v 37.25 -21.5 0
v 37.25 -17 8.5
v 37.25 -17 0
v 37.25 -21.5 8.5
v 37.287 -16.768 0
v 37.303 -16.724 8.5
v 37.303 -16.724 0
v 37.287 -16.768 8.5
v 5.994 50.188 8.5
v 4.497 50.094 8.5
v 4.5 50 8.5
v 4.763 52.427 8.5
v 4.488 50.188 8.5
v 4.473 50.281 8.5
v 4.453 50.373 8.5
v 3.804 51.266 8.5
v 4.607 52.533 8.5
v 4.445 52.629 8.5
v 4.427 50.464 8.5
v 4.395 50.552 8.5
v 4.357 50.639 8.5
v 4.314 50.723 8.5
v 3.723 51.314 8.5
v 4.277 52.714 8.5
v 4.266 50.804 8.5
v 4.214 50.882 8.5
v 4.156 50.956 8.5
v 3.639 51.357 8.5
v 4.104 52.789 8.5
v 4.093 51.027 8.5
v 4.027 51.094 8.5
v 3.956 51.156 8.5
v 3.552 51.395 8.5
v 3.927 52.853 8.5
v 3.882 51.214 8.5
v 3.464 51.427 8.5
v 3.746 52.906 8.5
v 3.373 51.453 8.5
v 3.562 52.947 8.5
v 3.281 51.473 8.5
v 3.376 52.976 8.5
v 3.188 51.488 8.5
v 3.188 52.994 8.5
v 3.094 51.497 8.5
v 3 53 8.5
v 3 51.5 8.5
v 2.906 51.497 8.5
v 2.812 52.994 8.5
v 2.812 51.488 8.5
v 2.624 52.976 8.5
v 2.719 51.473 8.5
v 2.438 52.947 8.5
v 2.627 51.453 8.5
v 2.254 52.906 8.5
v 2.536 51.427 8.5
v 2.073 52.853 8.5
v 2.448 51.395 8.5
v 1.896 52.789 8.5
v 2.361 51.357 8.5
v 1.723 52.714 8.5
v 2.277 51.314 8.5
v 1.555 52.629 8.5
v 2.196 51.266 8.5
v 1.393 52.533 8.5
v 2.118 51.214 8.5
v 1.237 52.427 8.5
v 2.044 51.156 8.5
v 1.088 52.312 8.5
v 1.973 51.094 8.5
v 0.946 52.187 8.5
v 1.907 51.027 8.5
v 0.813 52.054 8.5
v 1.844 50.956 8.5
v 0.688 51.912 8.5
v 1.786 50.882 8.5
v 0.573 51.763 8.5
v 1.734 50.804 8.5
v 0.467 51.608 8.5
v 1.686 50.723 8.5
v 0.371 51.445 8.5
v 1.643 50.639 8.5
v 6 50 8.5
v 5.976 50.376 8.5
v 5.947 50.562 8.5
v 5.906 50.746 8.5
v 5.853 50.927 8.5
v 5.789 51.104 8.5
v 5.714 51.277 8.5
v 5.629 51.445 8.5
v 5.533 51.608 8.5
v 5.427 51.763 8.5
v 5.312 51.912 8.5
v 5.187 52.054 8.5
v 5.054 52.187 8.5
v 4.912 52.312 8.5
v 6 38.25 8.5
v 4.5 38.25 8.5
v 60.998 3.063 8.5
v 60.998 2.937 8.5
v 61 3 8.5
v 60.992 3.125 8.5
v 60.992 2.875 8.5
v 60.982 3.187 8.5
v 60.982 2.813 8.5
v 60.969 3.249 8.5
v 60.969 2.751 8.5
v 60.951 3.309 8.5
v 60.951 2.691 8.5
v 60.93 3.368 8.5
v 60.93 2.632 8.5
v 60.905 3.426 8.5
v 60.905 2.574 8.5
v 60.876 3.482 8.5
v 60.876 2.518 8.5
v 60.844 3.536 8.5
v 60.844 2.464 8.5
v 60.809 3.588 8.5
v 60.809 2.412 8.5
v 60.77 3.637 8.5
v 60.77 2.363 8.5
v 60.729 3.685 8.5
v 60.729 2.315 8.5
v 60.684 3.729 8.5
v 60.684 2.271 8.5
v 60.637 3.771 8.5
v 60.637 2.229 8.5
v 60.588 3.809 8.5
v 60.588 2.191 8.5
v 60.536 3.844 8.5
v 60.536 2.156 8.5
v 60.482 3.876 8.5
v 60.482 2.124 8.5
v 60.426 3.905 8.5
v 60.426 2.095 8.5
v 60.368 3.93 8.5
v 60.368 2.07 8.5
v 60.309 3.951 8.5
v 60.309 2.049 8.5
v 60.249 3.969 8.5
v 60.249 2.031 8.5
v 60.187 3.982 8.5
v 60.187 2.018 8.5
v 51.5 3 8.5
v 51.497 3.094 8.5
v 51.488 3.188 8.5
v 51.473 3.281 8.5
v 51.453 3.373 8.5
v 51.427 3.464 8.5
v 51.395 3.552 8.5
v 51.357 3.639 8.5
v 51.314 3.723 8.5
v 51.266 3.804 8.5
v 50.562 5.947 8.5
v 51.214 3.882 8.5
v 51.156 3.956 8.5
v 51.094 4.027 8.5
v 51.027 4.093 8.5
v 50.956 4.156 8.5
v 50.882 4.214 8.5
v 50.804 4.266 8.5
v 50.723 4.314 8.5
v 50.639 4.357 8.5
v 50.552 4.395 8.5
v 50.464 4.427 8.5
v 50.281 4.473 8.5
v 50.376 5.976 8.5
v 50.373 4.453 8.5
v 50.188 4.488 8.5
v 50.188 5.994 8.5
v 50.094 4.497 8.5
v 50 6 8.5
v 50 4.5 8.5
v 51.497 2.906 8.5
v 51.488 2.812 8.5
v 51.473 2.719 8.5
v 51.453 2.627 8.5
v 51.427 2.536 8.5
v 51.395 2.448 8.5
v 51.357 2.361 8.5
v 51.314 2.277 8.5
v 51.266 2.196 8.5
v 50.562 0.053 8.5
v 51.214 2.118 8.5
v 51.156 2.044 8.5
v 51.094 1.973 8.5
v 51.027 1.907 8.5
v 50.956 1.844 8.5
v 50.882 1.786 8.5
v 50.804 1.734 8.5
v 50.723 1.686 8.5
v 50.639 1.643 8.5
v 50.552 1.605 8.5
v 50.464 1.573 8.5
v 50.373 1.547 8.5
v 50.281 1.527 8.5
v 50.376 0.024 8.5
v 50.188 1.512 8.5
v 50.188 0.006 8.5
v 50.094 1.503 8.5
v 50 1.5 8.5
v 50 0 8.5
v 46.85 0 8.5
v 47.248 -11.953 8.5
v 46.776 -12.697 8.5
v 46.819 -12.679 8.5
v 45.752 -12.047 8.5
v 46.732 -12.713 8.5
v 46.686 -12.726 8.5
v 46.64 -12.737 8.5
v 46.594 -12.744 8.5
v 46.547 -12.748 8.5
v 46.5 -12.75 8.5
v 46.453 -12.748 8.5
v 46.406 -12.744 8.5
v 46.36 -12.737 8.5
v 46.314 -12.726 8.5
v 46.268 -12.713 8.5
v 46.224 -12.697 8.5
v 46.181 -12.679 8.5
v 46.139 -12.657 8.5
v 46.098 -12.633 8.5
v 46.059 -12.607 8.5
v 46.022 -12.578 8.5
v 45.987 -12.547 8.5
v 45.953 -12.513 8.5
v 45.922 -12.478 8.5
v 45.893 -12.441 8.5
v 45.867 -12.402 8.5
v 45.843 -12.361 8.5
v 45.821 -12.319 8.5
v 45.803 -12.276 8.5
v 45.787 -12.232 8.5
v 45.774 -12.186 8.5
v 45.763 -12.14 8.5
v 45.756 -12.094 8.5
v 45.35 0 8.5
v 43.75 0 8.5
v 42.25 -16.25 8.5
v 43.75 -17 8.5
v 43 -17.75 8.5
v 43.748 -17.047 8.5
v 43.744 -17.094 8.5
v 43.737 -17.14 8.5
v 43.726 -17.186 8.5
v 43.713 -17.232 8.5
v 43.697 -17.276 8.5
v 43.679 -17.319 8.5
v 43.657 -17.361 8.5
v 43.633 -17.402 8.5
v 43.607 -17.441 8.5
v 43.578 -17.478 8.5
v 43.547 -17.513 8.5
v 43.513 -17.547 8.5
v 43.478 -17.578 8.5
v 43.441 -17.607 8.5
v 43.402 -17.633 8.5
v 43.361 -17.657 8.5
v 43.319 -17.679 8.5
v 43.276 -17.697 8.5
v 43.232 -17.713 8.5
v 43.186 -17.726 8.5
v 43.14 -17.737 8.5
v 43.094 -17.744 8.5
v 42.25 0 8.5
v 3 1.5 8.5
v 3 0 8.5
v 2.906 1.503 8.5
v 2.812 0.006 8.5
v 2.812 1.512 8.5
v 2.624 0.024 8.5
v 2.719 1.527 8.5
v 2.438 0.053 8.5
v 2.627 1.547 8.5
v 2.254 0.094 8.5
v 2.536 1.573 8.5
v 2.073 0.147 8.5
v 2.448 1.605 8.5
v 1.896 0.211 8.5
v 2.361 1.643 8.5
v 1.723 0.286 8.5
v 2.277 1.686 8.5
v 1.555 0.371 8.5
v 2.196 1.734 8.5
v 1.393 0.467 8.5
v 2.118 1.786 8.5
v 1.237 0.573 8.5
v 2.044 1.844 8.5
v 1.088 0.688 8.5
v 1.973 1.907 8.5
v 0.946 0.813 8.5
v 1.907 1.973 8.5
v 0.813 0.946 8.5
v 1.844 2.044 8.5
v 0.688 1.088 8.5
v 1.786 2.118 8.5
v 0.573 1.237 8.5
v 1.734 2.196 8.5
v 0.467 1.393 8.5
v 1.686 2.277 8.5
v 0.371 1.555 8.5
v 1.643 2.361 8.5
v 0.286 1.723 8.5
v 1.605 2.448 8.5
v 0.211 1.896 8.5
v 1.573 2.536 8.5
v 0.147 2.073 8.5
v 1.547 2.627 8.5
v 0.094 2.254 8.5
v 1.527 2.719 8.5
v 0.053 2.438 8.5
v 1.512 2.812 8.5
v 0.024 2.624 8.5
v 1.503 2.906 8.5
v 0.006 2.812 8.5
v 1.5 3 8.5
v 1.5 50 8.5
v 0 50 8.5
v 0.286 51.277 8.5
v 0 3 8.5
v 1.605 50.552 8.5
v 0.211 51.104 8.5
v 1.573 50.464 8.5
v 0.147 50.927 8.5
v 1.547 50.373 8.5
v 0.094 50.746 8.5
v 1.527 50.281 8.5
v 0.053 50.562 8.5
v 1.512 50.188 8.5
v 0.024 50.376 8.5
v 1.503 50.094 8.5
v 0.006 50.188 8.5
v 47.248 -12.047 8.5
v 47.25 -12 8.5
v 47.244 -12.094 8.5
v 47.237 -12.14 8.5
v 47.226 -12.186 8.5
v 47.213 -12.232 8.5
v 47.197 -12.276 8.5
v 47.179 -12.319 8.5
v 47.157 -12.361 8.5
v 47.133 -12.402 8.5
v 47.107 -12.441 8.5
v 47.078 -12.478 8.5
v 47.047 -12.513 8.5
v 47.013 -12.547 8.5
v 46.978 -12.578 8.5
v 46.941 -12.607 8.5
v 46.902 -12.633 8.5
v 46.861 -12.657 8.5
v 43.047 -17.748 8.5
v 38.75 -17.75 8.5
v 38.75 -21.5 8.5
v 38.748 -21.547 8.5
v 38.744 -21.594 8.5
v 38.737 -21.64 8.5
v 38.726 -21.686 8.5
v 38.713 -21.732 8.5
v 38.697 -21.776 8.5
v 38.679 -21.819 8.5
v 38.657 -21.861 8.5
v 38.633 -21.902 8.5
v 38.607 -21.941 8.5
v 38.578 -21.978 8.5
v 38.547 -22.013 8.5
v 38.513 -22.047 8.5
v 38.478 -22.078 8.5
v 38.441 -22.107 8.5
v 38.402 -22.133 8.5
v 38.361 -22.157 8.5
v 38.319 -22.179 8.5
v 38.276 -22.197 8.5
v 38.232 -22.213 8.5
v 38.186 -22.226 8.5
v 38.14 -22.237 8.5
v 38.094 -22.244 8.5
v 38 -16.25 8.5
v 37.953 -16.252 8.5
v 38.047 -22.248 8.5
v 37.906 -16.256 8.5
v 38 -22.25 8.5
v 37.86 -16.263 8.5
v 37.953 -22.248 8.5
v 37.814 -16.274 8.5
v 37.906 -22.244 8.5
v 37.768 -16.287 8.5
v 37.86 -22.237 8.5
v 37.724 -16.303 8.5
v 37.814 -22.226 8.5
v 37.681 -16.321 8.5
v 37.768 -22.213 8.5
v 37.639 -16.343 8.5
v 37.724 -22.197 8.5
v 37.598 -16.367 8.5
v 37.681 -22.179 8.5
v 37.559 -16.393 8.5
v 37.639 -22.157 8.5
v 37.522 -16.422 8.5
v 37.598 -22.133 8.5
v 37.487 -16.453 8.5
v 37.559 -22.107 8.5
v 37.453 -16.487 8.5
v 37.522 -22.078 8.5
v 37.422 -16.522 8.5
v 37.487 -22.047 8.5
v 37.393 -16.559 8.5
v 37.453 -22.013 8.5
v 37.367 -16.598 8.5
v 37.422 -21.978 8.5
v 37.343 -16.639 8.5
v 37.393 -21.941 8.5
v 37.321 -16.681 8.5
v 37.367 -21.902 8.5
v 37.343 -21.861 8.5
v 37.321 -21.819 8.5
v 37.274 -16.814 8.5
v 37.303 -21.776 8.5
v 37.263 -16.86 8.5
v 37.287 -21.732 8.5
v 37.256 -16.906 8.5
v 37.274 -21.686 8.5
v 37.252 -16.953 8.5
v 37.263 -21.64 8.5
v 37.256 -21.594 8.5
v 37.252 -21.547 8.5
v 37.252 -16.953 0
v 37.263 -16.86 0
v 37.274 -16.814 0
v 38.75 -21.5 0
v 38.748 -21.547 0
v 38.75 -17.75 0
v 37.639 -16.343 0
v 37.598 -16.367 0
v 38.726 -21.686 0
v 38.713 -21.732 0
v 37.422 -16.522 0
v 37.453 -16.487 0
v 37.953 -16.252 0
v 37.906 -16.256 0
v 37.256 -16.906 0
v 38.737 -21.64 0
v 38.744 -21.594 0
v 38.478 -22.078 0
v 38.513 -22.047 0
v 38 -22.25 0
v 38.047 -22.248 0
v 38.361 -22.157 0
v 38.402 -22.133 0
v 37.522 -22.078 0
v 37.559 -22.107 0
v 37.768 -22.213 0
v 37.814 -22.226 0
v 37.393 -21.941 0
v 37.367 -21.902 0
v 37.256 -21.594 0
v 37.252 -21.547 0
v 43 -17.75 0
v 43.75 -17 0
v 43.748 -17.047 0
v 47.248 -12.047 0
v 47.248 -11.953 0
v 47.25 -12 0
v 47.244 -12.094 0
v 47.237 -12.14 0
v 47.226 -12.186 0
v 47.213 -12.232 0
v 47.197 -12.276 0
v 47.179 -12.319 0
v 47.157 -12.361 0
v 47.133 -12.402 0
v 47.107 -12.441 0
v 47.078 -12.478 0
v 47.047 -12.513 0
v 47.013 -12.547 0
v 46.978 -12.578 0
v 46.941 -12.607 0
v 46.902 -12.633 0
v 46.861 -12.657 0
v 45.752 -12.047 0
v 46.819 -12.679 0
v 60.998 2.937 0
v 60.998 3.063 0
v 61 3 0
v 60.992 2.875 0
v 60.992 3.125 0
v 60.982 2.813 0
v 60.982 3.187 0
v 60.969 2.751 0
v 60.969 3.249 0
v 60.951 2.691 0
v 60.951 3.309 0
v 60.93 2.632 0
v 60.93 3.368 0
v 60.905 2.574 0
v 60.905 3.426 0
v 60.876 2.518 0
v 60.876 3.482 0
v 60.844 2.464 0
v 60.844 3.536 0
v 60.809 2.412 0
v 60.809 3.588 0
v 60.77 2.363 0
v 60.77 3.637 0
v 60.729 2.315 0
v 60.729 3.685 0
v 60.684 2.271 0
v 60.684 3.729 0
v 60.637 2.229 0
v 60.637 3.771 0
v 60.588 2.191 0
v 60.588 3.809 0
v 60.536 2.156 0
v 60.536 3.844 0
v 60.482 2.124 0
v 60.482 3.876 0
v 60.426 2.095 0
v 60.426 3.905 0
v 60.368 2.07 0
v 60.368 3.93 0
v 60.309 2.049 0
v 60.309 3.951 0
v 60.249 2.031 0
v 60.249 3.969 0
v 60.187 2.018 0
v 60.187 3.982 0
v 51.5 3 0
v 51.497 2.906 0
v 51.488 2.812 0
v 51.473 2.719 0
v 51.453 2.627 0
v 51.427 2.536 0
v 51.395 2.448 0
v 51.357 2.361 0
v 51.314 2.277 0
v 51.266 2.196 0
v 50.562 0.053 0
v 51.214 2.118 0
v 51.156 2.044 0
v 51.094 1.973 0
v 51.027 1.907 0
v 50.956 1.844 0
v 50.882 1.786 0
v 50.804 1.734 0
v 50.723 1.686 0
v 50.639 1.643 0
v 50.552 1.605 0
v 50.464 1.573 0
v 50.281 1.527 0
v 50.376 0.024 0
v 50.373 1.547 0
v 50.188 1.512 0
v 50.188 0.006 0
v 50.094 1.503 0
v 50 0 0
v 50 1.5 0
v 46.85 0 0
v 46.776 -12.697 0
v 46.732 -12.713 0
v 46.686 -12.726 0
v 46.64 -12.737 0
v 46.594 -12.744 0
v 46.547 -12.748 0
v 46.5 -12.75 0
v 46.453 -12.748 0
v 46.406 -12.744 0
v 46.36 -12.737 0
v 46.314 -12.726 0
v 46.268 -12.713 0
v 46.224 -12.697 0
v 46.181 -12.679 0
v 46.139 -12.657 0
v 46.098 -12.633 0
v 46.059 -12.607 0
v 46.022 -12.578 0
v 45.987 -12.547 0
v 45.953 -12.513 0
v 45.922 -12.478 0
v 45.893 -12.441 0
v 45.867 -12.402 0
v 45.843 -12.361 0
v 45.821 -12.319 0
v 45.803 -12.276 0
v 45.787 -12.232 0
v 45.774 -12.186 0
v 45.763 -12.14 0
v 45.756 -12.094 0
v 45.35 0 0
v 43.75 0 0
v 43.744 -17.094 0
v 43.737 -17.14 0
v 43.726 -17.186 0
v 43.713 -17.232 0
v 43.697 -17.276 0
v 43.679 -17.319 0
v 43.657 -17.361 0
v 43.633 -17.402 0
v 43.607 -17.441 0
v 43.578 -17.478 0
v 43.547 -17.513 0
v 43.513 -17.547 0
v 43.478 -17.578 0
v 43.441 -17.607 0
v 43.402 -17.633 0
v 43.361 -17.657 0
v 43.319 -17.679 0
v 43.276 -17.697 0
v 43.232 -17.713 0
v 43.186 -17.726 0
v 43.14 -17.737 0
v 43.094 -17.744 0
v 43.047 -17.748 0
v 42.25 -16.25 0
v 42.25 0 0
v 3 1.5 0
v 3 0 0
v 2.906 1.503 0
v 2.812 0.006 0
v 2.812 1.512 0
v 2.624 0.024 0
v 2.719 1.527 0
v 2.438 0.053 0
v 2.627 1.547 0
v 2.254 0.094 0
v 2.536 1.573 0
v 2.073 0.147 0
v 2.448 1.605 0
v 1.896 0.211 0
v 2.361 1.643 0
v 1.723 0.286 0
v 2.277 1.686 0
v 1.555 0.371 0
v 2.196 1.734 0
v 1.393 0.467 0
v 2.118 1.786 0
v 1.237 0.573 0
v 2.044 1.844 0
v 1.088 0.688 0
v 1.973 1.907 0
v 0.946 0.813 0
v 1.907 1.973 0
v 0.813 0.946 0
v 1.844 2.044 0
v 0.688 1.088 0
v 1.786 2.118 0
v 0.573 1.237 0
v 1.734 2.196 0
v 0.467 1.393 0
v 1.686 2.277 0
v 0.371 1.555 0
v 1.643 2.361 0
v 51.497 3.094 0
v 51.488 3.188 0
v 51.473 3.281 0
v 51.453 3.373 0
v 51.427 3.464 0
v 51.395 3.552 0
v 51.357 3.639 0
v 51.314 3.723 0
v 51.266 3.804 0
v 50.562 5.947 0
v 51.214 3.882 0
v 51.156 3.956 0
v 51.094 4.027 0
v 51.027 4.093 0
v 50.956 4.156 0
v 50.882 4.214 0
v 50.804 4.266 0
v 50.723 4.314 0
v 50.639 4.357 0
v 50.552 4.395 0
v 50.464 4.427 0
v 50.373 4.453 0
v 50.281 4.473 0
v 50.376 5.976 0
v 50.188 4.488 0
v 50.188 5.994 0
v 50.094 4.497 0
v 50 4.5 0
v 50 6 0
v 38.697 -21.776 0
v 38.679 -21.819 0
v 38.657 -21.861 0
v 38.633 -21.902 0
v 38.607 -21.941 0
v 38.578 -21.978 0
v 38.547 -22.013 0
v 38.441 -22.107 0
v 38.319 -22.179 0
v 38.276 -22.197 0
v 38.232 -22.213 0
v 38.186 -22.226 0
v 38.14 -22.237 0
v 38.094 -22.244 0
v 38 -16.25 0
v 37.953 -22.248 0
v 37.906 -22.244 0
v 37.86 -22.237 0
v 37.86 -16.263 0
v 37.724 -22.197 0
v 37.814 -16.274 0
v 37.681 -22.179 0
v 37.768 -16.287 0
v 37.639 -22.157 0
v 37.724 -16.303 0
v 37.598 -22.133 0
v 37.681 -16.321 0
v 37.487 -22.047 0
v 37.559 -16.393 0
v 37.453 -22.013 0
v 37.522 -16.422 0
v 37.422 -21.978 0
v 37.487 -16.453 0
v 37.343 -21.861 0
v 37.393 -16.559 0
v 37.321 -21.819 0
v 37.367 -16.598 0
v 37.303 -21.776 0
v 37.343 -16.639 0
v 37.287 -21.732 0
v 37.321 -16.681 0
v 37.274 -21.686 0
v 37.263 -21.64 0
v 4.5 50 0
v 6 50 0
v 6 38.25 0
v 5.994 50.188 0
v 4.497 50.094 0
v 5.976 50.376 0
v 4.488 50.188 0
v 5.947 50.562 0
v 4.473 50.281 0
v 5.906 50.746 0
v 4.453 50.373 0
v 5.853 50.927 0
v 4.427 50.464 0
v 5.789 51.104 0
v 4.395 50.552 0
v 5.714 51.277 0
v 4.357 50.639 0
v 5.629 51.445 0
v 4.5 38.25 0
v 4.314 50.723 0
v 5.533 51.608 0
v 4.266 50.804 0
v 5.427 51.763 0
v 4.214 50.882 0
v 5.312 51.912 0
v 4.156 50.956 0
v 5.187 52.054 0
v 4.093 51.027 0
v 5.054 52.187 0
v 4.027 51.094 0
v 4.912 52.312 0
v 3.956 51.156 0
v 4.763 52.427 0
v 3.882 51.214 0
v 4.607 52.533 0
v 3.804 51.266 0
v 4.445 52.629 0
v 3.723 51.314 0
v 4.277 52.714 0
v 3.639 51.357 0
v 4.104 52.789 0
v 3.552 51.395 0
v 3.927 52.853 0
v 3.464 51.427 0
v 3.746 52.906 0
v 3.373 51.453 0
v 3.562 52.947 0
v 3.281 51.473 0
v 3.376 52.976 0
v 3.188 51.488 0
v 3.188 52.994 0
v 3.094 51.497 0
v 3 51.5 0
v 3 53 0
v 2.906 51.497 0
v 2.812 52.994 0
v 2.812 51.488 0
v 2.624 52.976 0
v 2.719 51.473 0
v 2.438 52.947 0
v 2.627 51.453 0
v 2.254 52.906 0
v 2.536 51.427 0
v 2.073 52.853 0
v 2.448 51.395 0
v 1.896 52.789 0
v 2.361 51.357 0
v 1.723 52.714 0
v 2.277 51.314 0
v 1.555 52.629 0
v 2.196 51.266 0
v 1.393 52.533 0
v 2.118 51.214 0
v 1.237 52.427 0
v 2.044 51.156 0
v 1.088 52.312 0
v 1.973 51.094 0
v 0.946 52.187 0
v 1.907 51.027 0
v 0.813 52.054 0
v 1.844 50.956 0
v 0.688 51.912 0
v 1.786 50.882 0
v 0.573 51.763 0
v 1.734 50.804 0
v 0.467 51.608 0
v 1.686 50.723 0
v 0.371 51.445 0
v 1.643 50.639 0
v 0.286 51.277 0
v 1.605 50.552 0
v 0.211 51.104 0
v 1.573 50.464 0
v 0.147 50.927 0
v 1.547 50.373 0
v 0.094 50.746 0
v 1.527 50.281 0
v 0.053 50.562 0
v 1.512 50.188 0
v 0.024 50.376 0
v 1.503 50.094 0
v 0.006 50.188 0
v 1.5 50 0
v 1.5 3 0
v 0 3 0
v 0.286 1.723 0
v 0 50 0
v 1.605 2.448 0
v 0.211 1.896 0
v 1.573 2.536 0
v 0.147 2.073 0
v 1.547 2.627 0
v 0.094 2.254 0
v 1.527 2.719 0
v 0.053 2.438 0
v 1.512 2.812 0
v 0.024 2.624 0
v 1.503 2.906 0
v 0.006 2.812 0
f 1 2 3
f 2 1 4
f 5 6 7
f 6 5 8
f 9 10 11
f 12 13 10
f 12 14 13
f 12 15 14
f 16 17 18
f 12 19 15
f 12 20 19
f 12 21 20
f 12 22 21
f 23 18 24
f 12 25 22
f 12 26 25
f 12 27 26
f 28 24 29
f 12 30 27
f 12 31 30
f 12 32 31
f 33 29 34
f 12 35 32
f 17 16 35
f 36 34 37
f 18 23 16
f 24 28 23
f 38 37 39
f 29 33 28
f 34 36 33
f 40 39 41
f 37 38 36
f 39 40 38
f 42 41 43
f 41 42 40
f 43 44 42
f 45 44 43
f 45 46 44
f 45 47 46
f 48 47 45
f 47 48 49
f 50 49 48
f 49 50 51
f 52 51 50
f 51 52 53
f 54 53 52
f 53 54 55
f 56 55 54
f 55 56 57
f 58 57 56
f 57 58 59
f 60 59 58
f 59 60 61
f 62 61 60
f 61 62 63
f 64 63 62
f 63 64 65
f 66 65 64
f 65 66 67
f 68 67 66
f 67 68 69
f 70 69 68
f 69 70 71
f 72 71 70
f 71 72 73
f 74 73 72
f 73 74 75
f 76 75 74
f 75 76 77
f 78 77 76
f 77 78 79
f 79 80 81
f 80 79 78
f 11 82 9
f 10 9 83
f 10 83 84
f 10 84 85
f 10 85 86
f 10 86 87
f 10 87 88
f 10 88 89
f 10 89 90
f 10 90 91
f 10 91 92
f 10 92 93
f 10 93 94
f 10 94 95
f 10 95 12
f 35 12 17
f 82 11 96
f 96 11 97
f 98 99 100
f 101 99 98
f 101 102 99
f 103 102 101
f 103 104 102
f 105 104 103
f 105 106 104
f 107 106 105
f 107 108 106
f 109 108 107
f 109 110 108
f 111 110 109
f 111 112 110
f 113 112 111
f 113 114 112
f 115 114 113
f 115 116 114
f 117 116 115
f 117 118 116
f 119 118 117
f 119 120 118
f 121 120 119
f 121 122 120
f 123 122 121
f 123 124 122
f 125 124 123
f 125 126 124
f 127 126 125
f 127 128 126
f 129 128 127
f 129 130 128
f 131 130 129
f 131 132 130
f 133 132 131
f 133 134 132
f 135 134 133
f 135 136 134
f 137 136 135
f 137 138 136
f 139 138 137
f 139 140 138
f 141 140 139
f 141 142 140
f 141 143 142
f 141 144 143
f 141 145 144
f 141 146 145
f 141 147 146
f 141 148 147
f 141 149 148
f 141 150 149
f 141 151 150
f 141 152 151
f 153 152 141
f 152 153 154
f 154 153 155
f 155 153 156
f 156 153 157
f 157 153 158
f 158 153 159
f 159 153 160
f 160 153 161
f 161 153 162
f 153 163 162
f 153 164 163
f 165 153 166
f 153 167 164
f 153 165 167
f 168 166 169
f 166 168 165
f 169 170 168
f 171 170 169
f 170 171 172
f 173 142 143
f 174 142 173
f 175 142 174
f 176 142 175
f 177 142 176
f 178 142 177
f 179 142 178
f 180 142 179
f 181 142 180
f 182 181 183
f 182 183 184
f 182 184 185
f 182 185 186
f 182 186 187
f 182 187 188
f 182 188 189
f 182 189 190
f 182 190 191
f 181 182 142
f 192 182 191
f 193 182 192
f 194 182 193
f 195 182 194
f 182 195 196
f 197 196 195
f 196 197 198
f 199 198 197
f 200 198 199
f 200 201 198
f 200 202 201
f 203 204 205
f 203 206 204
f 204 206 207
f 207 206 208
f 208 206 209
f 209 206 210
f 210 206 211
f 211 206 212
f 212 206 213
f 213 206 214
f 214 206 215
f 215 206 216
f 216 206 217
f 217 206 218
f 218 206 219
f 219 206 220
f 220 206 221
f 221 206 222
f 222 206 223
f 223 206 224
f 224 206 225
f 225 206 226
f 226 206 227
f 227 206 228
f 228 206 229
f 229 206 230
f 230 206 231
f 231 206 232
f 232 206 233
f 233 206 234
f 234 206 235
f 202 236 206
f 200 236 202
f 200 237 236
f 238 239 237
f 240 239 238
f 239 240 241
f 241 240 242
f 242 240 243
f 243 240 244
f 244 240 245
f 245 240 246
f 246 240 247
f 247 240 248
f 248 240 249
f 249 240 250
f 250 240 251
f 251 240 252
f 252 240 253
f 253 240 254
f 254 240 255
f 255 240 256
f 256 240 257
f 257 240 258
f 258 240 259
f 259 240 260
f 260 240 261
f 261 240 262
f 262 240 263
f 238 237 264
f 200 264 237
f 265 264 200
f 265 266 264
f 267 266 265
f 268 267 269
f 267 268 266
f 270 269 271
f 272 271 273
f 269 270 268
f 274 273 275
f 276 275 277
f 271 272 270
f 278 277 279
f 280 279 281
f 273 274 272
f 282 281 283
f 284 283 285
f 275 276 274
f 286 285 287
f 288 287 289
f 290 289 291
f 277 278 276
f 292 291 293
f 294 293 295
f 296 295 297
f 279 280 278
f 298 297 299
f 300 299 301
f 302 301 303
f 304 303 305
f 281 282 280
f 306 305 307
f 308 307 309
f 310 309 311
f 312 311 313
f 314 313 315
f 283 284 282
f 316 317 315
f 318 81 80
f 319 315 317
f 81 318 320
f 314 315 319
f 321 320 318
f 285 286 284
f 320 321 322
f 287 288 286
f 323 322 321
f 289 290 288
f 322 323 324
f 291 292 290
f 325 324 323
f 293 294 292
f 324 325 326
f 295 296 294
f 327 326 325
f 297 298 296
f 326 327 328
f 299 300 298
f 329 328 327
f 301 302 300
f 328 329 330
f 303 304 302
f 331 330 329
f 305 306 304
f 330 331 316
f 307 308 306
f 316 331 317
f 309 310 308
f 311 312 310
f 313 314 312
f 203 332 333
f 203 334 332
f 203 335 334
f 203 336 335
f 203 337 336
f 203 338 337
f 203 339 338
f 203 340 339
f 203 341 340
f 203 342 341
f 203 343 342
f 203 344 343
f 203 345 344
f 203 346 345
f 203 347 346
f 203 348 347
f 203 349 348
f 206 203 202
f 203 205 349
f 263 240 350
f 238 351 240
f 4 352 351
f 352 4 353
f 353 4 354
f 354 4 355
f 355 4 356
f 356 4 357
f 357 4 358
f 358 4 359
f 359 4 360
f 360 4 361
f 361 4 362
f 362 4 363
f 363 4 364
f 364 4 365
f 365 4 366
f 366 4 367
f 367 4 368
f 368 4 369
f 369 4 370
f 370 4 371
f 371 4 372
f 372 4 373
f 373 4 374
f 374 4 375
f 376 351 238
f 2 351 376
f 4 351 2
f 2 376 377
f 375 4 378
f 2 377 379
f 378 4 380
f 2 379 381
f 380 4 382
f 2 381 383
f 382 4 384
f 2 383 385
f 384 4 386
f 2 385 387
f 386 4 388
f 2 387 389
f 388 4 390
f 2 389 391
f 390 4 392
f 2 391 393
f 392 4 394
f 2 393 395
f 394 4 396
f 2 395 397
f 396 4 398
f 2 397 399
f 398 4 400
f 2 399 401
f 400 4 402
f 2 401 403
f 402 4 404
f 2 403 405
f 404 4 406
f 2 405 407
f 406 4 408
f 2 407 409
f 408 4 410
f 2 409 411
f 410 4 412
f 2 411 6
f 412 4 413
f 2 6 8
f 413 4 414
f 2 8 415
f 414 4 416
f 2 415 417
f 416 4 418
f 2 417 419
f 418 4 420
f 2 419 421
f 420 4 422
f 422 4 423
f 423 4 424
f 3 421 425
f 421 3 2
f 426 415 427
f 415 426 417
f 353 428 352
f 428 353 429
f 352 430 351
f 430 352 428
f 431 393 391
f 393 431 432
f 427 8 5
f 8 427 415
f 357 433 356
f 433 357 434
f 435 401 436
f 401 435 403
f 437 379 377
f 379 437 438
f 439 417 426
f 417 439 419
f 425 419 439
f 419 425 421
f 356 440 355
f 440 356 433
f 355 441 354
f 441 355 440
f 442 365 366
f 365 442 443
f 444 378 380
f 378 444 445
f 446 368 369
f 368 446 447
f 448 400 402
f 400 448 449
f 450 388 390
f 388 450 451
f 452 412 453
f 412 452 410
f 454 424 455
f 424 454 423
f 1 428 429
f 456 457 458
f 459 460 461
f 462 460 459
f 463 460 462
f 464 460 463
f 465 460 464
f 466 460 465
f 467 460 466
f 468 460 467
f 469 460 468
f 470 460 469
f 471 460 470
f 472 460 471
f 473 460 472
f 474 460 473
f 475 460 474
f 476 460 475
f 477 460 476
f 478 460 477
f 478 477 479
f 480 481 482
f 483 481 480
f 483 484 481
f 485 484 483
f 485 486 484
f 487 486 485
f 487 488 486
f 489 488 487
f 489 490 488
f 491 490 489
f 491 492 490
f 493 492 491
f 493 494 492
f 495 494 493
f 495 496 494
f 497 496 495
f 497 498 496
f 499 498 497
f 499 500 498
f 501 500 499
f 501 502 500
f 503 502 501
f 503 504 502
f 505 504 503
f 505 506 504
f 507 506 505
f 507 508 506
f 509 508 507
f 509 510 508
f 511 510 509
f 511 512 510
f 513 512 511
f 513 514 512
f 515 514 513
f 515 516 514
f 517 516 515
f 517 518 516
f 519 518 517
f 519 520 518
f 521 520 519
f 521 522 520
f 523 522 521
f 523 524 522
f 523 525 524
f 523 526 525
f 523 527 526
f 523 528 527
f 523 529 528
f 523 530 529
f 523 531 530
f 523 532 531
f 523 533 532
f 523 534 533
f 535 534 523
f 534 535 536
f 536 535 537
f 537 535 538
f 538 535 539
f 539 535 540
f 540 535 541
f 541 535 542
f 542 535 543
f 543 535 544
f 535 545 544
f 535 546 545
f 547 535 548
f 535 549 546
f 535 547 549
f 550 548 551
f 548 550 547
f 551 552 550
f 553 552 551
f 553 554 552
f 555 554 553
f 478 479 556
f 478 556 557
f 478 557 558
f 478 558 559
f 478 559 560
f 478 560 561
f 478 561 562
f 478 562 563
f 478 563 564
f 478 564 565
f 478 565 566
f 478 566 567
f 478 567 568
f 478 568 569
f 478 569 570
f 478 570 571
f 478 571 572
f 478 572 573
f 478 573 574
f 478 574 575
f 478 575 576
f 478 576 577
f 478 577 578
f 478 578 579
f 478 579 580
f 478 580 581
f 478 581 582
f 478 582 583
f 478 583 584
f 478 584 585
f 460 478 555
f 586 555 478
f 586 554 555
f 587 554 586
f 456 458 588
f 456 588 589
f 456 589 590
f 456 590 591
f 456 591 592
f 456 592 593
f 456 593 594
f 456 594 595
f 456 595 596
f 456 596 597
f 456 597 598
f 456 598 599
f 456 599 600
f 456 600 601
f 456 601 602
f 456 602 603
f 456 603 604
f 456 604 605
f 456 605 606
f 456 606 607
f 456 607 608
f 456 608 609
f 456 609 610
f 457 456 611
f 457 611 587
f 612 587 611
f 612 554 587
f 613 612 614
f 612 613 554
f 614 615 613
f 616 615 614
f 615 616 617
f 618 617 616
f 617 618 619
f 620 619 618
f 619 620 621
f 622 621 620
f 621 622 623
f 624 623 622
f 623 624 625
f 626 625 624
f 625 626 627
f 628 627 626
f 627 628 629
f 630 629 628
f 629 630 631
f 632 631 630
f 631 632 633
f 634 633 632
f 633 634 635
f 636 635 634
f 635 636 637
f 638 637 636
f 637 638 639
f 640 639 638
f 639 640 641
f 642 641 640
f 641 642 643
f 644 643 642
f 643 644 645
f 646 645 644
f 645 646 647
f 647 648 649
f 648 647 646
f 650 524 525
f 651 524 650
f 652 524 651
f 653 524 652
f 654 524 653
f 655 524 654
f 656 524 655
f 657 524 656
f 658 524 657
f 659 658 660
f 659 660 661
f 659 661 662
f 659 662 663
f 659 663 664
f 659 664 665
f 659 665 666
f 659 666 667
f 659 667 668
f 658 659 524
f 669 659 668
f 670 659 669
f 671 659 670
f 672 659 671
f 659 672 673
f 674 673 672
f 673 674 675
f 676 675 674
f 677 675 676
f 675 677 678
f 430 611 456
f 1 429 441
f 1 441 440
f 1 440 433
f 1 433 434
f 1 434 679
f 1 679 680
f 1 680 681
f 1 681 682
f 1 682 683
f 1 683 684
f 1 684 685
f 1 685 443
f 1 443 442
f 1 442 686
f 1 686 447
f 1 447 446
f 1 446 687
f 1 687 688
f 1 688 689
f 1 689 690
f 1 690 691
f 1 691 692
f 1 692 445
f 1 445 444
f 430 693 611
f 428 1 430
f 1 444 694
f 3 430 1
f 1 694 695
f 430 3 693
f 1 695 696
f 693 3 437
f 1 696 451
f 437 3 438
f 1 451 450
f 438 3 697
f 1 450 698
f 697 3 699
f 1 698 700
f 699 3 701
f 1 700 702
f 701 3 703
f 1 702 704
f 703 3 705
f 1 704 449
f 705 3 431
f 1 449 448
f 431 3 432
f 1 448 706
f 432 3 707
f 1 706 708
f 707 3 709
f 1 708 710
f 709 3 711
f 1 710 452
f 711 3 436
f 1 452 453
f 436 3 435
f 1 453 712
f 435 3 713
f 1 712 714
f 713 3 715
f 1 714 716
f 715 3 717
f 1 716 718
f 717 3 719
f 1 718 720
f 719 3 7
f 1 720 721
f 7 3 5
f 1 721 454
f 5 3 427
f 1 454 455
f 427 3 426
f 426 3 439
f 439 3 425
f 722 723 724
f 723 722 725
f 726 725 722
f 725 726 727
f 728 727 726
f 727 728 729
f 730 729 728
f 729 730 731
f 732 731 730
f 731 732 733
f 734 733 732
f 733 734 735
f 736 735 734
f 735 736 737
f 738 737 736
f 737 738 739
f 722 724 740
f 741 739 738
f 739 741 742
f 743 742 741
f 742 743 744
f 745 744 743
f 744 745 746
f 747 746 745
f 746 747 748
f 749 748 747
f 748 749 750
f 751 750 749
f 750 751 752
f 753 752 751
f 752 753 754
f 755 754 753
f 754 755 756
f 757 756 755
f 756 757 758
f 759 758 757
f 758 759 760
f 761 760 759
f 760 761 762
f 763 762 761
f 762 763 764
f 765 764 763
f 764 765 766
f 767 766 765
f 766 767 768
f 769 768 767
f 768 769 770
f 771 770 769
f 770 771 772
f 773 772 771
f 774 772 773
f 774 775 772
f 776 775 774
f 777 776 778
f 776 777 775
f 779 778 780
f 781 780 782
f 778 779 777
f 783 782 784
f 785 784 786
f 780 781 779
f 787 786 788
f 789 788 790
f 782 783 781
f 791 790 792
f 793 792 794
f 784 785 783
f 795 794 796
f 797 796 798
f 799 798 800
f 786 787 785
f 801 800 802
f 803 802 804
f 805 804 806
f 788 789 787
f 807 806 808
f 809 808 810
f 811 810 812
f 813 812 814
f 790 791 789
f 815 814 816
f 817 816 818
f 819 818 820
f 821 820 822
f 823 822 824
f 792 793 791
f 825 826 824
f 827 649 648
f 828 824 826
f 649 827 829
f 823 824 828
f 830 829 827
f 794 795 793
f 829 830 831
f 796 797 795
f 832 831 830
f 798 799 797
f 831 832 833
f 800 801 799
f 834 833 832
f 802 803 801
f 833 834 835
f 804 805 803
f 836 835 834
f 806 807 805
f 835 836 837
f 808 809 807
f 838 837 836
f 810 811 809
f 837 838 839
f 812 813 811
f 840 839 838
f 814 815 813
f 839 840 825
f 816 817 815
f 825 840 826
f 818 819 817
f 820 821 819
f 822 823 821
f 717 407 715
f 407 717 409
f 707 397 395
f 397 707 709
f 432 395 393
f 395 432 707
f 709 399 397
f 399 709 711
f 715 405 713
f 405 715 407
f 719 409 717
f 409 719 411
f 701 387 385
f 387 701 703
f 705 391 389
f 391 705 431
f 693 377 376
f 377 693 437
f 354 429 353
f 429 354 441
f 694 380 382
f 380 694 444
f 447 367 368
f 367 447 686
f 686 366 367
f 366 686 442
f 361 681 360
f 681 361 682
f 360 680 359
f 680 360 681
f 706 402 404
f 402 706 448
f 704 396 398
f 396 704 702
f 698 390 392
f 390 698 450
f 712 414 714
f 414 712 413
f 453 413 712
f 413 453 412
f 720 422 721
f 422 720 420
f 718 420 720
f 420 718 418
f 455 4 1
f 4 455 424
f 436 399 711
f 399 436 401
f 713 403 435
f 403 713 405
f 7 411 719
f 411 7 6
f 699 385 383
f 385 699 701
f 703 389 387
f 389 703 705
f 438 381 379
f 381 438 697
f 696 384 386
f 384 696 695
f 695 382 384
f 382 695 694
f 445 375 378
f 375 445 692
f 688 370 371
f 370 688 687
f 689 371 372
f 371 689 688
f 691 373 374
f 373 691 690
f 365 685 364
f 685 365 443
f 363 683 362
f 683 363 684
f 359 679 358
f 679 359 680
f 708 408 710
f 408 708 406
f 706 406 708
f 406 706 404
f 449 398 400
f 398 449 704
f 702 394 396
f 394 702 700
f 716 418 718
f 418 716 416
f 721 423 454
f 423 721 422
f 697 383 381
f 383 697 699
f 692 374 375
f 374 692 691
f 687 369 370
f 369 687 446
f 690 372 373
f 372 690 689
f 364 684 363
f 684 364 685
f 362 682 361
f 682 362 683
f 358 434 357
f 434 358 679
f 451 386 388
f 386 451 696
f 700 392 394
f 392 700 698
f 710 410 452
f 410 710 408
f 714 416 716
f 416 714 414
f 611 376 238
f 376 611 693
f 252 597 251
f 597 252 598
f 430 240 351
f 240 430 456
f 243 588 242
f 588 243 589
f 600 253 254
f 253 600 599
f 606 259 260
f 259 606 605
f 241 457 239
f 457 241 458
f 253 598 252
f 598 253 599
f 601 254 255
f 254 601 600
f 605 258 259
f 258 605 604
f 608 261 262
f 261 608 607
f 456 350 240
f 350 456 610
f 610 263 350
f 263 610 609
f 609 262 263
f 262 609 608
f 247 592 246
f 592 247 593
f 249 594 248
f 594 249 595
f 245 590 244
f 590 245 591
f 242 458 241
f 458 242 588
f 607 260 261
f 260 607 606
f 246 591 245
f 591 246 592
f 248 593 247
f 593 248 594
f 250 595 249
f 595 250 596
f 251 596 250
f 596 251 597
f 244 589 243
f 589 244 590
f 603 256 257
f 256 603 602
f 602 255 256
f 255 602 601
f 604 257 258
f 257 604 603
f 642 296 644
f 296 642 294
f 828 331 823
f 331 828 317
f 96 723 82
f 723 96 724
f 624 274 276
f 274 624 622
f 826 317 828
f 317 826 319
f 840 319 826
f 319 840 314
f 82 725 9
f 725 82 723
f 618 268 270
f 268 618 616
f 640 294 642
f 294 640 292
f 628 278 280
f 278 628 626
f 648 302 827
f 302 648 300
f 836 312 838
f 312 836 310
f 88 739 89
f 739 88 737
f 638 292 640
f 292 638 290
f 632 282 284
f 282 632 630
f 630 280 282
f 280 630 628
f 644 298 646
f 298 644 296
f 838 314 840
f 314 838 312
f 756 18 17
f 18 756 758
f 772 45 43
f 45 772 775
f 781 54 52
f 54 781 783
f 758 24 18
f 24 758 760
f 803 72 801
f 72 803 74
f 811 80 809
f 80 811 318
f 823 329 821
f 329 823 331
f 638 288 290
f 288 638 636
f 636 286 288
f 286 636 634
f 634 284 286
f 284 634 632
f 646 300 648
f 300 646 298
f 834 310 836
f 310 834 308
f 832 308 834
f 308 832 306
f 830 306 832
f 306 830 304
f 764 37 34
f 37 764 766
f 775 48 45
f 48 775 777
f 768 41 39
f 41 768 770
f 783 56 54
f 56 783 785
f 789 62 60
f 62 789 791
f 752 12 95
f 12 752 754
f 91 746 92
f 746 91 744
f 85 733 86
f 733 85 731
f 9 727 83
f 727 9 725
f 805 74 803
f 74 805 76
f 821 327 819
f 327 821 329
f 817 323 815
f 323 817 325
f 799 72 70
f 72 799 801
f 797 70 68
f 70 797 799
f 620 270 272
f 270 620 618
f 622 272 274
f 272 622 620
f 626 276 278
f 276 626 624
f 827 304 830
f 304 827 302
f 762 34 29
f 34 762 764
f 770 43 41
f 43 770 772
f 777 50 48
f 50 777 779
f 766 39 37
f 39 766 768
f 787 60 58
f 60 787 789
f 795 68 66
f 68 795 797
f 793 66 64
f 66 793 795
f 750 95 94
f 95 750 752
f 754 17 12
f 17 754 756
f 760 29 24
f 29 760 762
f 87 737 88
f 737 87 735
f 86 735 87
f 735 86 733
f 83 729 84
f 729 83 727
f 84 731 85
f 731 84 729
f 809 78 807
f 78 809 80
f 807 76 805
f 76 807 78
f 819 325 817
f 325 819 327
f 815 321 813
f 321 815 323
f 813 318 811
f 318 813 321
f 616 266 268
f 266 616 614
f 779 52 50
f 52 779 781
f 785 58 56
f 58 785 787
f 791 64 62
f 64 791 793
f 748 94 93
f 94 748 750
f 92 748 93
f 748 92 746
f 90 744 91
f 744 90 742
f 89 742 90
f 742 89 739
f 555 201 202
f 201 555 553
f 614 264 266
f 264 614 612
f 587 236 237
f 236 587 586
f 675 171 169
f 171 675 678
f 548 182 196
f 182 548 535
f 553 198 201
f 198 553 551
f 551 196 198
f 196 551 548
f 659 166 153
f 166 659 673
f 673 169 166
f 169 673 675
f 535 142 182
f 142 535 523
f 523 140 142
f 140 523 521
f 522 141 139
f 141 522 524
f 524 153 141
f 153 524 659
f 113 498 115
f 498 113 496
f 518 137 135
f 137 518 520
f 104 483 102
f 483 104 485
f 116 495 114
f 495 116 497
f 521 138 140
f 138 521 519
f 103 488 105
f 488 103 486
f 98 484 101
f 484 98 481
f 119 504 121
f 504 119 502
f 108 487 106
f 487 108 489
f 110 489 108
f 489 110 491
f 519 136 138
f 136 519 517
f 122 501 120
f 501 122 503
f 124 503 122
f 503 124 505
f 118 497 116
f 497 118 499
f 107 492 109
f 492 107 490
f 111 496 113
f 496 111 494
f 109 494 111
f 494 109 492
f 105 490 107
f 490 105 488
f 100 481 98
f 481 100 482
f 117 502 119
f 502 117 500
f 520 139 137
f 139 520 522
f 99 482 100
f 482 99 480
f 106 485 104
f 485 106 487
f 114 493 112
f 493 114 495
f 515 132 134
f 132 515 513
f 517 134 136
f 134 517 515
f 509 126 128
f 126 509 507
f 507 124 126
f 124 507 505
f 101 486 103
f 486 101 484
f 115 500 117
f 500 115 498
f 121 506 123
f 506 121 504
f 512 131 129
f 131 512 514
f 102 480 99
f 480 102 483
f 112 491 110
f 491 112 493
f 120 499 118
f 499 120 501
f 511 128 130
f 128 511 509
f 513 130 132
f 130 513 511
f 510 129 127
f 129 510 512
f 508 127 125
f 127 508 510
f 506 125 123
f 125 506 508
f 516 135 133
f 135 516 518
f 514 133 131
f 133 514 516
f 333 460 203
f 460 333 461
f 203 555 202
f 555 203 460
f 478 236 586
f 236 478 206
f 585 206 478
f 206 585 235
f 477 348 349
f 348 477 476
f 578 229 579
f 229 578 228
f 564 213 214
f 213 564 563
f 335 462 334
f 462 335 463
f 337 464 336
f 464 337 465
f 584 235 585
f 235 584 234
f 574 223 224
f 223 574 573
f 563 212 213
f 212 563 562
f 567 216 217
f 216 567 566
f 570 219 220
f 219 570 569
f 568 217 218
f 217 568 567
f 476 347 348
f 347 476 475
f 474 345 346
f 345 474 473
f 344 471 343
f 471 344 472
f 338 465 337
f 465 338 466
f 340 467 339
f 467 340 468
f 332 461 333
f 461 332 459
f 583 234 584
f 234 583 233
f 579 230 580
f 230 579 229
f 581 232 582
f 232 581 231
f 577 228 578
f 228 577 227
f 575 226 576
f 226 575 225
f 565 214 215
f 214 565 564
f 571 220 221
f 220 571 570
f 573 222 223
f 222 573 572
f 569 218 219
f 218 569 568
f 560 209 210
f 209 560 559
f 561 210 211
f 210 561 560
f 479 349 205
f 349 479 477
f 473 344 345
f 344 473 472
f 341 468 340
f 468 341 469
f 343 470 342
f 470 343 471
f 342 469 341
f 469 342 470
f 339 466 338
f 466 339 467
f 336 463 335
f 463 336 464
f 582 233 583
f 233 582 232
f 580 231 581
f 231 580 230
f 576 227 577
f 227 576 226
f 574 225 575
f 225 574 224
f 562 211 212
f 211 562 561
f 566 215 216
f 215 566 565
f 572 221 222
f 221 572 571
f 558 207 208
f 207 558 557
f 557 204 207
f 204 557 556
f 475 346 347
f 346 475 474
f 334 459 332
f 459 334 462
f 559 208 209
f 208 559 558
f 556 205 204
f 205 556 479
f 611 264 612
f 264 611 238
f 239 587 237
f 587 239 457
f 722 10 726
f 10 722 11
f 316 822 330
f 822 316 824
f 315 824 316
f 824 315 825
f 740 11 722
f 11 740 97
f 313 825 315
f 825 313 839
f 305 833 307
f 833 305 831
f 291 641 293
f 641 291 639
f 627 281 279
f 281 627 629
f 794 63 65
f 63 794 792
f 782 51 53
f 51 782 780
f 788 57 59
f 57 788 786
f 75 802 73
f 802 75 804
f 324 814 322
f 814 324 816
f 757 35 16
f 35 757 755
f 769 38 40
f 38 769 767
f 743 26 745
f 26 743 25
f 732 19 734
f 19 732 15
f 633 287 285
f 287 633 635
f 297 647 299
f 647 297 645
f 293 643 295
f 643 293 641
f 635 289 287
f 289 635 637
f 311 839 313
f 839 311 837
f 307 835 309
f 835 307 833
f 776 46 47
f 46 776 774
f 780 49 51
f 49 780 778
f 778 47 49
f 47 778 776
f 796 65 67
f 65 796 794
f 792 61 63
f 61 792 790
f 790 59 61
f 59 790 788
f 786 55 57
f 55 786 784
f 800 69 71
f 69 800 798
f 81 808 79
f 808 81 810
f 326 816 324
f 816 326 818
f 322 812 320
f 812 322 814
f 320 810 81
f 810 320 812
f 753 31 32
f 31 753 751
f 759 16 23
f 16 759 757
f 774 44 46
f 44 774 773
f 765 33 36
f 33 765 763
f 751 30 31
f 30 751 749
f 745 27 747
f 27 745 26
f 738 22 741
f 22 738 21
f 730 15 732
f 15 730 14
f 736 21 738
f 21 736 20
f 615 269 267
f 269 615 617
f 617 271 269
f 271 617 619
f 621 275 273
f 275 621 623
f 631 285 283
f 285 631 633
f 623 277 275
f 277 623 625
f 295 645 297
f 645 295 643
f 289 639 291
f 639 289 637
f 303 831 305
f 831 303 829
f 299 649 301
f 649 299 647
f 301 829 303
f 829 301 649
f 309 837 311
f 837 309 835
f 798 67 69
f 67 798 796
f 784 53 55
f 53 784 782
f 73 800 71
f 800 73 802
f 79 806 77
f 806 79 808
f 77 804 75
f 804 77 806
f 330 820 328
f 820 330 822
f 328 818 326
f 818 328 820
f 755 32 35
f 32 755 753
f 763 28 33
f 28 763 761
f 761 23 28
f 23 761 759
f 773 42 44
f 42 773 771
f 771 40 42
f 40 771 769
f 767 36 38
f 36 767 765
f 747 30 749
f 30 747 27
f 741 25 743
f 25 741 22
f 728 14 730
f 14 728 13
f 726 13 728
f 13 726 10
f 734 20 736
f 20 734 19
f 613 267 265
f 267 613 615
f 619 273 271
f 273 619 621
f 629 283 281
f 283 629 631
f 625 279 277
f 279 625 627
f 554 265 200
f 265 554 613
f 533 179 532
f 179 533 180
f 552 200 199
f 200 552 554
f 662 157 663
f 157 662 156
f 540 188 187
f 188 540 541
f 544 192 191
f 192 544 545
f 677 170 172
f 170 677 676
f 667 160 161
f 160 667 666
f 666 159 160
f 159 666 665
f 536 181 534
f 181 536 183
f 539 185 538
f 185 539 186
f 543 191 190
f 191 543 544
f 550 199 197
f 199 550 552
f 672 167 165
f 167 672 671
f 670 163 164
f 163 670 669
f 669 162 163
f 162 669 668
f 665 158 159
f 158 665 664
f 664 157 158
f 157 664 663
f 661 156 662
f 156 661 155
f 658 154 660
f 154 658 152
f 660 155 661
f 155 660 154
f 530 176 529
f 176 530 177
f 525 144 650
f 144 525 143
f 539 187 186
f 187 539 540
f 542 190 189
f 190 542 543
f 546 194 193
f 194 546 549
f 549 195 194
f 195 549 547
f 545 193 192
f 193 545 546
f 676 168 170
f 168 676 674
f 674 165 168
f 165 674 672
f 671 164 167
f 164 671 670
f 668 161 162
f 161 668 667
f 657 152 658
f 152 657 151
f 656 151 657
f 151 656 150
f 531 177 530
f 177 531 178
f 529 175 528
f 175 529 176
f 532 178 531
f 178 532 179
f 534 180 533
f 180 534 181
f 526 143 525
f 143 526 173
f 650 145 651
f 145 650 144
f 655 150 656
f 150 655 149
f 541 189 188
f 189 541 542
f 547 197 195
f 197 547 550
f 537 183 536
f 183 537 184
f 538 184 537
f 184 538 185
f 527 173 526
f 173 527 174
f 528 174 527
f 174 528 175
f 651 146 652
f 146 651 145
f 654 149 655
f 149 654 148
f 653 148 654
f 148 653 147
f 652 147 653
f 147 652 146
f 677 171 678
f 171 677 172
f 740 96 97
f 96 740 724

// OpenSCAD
/*
    Filament Sensor Mounting Clip For Cocoon Create
    By Brian Khuu 2019
    
    This is for a cheap filament sensor, that you can usually find on ebay.
    
*/
$fn=100;

/*
# Filament Mount Z
[<====y====>]
        [ ^ ]
        [ | ]
        [ x ]
        [ | ]
        [ V ]
*/
filament_mount_y_length=6;
filament_mount_x_length=5;
filament_mount_y_offset=20;
filament_mount_x_offset=40;
filament_mount_width=8.5;
filament_mount_thickness=1.5;

/*
# Filament Mount Z
[<====y====>]
[ ^ ]
[ | ]
[ x ]
[ | ]
[ V ]
*/
printer_frame_tol=1;
printer_frame_clip_thickness=1.5;
printer_frame_y_lenght = 50;
printer_frame_x_lenght = 50;
metal_sheet_thickness=2+printer_frame_tol;

module sheet_metal(width)
{
    translate([0,0,-1])
    union()
    {
        hull()
        {
            translate([0,0,0])
                cylinder(r=metal_sheet_thickness/2, h=width+2);
            translate([0,printer_frame_y_lenght-metal_sheet_thickness,0])
                cylinder(r=metal_sheet_thickness/2, h=width+2);
        }
        hull()
        {
            translate([0,0,0])
                cylinder(r=metal_sheet_thickness/2, h=width+2);
            translate([printer_frame_x_lenght-metal_sheet_thickness,0,0])
                cylinder(r=metal_sheet_thickness/2, h=width+2);
        }
        cube([(printer_frame_x_lenght-metal_sheet_thickness),(printer_frame_y_lenght-metal_sheet_thickness)*3/4,width+2]);
    }
}

module sheet_metal_clip(width, thickness)
{
    diameter=metal_sheet_thickness+thickness*2;
    translate([thickness*2,thickness*2,0])
    difference()
    {
        union()
        {
            /* Clip */
            hull()
            {
                translate([0,0,0])
                    cylinder(r=diameter/2, h=width);
                translate([0,printer_frame_y_lenght-diameter/2,0])
                    cylinder(r=diameter/2, h=width);
            }
            hull()
            {
                translate([0,0,0])
                    cylinder(r=diameter/2, h=width);
                translate([printer_frame_x_lenght-diameter/2,0,0])
                    cylinder(r=diameter/2, h=width);
            }
            
            /* Tab */
            hull()
            {
                translate([printer_frame_x_lenght-diameter/2,0,0])
                    cylinder(r=diameter/2, h=width);
                translate([printer_frame_x_lenght-diameter/2+10,0,0])
                    cylinder(r=1, h=width);
            }
            
            /* Cable Clip*/
            hull()
            {
                translate([filament_mount_x_offset+filament_mount_thickness+2,-filament_mount_y_offset*3/4,0])
                    cylinder(r=filament_mount_thickness/2, h=width);
                translate([filament_mount_x_offset+filament_mount_thickness+1.5,0,0])
                    cylinder(r=filament_mount_thickness/2, h=width);
            }
            
            /* Mount Offset*/
            hull()
            {
                translate([filament_mount_x_offset,-filament_mount_y_offset,0])
                    cylinder(r=filament_mount_thickness/2, h=width);
                translate([filament_mount_x_offset,0,0])
                    cylinder(r=filament_mount_thickness/2, h=width);
            }
            
            /* Mount */
            translate([filament_mount_x_offset-filament_mount_x_length,-filament_mount_y_offset,0])
            union()
            {
                hull()
                {
                    translate([0,0,0])
                        cylinder(r=filament_mount_thickness/2, h=width);
                    translate([0,-filament_mount_y_length+filament_mount_thickness,0])
                        cylinder(r=filament_mount_thickness/2, h=width);
                }
                hull()
                {
                    translate([0,0,0])
                        cylinder(r=filament_mount_thickness/2, h=width);
                    translate([filament_mount_x_length,0,0])
                        cylinder(r=filament_mount_thickness/2, h=width);
                }
            }
            
            
        }
        sheet_metal(width);
    }
}

sheet_metal_clip(filament_mount_width,printer_frame_clip_thickness);
